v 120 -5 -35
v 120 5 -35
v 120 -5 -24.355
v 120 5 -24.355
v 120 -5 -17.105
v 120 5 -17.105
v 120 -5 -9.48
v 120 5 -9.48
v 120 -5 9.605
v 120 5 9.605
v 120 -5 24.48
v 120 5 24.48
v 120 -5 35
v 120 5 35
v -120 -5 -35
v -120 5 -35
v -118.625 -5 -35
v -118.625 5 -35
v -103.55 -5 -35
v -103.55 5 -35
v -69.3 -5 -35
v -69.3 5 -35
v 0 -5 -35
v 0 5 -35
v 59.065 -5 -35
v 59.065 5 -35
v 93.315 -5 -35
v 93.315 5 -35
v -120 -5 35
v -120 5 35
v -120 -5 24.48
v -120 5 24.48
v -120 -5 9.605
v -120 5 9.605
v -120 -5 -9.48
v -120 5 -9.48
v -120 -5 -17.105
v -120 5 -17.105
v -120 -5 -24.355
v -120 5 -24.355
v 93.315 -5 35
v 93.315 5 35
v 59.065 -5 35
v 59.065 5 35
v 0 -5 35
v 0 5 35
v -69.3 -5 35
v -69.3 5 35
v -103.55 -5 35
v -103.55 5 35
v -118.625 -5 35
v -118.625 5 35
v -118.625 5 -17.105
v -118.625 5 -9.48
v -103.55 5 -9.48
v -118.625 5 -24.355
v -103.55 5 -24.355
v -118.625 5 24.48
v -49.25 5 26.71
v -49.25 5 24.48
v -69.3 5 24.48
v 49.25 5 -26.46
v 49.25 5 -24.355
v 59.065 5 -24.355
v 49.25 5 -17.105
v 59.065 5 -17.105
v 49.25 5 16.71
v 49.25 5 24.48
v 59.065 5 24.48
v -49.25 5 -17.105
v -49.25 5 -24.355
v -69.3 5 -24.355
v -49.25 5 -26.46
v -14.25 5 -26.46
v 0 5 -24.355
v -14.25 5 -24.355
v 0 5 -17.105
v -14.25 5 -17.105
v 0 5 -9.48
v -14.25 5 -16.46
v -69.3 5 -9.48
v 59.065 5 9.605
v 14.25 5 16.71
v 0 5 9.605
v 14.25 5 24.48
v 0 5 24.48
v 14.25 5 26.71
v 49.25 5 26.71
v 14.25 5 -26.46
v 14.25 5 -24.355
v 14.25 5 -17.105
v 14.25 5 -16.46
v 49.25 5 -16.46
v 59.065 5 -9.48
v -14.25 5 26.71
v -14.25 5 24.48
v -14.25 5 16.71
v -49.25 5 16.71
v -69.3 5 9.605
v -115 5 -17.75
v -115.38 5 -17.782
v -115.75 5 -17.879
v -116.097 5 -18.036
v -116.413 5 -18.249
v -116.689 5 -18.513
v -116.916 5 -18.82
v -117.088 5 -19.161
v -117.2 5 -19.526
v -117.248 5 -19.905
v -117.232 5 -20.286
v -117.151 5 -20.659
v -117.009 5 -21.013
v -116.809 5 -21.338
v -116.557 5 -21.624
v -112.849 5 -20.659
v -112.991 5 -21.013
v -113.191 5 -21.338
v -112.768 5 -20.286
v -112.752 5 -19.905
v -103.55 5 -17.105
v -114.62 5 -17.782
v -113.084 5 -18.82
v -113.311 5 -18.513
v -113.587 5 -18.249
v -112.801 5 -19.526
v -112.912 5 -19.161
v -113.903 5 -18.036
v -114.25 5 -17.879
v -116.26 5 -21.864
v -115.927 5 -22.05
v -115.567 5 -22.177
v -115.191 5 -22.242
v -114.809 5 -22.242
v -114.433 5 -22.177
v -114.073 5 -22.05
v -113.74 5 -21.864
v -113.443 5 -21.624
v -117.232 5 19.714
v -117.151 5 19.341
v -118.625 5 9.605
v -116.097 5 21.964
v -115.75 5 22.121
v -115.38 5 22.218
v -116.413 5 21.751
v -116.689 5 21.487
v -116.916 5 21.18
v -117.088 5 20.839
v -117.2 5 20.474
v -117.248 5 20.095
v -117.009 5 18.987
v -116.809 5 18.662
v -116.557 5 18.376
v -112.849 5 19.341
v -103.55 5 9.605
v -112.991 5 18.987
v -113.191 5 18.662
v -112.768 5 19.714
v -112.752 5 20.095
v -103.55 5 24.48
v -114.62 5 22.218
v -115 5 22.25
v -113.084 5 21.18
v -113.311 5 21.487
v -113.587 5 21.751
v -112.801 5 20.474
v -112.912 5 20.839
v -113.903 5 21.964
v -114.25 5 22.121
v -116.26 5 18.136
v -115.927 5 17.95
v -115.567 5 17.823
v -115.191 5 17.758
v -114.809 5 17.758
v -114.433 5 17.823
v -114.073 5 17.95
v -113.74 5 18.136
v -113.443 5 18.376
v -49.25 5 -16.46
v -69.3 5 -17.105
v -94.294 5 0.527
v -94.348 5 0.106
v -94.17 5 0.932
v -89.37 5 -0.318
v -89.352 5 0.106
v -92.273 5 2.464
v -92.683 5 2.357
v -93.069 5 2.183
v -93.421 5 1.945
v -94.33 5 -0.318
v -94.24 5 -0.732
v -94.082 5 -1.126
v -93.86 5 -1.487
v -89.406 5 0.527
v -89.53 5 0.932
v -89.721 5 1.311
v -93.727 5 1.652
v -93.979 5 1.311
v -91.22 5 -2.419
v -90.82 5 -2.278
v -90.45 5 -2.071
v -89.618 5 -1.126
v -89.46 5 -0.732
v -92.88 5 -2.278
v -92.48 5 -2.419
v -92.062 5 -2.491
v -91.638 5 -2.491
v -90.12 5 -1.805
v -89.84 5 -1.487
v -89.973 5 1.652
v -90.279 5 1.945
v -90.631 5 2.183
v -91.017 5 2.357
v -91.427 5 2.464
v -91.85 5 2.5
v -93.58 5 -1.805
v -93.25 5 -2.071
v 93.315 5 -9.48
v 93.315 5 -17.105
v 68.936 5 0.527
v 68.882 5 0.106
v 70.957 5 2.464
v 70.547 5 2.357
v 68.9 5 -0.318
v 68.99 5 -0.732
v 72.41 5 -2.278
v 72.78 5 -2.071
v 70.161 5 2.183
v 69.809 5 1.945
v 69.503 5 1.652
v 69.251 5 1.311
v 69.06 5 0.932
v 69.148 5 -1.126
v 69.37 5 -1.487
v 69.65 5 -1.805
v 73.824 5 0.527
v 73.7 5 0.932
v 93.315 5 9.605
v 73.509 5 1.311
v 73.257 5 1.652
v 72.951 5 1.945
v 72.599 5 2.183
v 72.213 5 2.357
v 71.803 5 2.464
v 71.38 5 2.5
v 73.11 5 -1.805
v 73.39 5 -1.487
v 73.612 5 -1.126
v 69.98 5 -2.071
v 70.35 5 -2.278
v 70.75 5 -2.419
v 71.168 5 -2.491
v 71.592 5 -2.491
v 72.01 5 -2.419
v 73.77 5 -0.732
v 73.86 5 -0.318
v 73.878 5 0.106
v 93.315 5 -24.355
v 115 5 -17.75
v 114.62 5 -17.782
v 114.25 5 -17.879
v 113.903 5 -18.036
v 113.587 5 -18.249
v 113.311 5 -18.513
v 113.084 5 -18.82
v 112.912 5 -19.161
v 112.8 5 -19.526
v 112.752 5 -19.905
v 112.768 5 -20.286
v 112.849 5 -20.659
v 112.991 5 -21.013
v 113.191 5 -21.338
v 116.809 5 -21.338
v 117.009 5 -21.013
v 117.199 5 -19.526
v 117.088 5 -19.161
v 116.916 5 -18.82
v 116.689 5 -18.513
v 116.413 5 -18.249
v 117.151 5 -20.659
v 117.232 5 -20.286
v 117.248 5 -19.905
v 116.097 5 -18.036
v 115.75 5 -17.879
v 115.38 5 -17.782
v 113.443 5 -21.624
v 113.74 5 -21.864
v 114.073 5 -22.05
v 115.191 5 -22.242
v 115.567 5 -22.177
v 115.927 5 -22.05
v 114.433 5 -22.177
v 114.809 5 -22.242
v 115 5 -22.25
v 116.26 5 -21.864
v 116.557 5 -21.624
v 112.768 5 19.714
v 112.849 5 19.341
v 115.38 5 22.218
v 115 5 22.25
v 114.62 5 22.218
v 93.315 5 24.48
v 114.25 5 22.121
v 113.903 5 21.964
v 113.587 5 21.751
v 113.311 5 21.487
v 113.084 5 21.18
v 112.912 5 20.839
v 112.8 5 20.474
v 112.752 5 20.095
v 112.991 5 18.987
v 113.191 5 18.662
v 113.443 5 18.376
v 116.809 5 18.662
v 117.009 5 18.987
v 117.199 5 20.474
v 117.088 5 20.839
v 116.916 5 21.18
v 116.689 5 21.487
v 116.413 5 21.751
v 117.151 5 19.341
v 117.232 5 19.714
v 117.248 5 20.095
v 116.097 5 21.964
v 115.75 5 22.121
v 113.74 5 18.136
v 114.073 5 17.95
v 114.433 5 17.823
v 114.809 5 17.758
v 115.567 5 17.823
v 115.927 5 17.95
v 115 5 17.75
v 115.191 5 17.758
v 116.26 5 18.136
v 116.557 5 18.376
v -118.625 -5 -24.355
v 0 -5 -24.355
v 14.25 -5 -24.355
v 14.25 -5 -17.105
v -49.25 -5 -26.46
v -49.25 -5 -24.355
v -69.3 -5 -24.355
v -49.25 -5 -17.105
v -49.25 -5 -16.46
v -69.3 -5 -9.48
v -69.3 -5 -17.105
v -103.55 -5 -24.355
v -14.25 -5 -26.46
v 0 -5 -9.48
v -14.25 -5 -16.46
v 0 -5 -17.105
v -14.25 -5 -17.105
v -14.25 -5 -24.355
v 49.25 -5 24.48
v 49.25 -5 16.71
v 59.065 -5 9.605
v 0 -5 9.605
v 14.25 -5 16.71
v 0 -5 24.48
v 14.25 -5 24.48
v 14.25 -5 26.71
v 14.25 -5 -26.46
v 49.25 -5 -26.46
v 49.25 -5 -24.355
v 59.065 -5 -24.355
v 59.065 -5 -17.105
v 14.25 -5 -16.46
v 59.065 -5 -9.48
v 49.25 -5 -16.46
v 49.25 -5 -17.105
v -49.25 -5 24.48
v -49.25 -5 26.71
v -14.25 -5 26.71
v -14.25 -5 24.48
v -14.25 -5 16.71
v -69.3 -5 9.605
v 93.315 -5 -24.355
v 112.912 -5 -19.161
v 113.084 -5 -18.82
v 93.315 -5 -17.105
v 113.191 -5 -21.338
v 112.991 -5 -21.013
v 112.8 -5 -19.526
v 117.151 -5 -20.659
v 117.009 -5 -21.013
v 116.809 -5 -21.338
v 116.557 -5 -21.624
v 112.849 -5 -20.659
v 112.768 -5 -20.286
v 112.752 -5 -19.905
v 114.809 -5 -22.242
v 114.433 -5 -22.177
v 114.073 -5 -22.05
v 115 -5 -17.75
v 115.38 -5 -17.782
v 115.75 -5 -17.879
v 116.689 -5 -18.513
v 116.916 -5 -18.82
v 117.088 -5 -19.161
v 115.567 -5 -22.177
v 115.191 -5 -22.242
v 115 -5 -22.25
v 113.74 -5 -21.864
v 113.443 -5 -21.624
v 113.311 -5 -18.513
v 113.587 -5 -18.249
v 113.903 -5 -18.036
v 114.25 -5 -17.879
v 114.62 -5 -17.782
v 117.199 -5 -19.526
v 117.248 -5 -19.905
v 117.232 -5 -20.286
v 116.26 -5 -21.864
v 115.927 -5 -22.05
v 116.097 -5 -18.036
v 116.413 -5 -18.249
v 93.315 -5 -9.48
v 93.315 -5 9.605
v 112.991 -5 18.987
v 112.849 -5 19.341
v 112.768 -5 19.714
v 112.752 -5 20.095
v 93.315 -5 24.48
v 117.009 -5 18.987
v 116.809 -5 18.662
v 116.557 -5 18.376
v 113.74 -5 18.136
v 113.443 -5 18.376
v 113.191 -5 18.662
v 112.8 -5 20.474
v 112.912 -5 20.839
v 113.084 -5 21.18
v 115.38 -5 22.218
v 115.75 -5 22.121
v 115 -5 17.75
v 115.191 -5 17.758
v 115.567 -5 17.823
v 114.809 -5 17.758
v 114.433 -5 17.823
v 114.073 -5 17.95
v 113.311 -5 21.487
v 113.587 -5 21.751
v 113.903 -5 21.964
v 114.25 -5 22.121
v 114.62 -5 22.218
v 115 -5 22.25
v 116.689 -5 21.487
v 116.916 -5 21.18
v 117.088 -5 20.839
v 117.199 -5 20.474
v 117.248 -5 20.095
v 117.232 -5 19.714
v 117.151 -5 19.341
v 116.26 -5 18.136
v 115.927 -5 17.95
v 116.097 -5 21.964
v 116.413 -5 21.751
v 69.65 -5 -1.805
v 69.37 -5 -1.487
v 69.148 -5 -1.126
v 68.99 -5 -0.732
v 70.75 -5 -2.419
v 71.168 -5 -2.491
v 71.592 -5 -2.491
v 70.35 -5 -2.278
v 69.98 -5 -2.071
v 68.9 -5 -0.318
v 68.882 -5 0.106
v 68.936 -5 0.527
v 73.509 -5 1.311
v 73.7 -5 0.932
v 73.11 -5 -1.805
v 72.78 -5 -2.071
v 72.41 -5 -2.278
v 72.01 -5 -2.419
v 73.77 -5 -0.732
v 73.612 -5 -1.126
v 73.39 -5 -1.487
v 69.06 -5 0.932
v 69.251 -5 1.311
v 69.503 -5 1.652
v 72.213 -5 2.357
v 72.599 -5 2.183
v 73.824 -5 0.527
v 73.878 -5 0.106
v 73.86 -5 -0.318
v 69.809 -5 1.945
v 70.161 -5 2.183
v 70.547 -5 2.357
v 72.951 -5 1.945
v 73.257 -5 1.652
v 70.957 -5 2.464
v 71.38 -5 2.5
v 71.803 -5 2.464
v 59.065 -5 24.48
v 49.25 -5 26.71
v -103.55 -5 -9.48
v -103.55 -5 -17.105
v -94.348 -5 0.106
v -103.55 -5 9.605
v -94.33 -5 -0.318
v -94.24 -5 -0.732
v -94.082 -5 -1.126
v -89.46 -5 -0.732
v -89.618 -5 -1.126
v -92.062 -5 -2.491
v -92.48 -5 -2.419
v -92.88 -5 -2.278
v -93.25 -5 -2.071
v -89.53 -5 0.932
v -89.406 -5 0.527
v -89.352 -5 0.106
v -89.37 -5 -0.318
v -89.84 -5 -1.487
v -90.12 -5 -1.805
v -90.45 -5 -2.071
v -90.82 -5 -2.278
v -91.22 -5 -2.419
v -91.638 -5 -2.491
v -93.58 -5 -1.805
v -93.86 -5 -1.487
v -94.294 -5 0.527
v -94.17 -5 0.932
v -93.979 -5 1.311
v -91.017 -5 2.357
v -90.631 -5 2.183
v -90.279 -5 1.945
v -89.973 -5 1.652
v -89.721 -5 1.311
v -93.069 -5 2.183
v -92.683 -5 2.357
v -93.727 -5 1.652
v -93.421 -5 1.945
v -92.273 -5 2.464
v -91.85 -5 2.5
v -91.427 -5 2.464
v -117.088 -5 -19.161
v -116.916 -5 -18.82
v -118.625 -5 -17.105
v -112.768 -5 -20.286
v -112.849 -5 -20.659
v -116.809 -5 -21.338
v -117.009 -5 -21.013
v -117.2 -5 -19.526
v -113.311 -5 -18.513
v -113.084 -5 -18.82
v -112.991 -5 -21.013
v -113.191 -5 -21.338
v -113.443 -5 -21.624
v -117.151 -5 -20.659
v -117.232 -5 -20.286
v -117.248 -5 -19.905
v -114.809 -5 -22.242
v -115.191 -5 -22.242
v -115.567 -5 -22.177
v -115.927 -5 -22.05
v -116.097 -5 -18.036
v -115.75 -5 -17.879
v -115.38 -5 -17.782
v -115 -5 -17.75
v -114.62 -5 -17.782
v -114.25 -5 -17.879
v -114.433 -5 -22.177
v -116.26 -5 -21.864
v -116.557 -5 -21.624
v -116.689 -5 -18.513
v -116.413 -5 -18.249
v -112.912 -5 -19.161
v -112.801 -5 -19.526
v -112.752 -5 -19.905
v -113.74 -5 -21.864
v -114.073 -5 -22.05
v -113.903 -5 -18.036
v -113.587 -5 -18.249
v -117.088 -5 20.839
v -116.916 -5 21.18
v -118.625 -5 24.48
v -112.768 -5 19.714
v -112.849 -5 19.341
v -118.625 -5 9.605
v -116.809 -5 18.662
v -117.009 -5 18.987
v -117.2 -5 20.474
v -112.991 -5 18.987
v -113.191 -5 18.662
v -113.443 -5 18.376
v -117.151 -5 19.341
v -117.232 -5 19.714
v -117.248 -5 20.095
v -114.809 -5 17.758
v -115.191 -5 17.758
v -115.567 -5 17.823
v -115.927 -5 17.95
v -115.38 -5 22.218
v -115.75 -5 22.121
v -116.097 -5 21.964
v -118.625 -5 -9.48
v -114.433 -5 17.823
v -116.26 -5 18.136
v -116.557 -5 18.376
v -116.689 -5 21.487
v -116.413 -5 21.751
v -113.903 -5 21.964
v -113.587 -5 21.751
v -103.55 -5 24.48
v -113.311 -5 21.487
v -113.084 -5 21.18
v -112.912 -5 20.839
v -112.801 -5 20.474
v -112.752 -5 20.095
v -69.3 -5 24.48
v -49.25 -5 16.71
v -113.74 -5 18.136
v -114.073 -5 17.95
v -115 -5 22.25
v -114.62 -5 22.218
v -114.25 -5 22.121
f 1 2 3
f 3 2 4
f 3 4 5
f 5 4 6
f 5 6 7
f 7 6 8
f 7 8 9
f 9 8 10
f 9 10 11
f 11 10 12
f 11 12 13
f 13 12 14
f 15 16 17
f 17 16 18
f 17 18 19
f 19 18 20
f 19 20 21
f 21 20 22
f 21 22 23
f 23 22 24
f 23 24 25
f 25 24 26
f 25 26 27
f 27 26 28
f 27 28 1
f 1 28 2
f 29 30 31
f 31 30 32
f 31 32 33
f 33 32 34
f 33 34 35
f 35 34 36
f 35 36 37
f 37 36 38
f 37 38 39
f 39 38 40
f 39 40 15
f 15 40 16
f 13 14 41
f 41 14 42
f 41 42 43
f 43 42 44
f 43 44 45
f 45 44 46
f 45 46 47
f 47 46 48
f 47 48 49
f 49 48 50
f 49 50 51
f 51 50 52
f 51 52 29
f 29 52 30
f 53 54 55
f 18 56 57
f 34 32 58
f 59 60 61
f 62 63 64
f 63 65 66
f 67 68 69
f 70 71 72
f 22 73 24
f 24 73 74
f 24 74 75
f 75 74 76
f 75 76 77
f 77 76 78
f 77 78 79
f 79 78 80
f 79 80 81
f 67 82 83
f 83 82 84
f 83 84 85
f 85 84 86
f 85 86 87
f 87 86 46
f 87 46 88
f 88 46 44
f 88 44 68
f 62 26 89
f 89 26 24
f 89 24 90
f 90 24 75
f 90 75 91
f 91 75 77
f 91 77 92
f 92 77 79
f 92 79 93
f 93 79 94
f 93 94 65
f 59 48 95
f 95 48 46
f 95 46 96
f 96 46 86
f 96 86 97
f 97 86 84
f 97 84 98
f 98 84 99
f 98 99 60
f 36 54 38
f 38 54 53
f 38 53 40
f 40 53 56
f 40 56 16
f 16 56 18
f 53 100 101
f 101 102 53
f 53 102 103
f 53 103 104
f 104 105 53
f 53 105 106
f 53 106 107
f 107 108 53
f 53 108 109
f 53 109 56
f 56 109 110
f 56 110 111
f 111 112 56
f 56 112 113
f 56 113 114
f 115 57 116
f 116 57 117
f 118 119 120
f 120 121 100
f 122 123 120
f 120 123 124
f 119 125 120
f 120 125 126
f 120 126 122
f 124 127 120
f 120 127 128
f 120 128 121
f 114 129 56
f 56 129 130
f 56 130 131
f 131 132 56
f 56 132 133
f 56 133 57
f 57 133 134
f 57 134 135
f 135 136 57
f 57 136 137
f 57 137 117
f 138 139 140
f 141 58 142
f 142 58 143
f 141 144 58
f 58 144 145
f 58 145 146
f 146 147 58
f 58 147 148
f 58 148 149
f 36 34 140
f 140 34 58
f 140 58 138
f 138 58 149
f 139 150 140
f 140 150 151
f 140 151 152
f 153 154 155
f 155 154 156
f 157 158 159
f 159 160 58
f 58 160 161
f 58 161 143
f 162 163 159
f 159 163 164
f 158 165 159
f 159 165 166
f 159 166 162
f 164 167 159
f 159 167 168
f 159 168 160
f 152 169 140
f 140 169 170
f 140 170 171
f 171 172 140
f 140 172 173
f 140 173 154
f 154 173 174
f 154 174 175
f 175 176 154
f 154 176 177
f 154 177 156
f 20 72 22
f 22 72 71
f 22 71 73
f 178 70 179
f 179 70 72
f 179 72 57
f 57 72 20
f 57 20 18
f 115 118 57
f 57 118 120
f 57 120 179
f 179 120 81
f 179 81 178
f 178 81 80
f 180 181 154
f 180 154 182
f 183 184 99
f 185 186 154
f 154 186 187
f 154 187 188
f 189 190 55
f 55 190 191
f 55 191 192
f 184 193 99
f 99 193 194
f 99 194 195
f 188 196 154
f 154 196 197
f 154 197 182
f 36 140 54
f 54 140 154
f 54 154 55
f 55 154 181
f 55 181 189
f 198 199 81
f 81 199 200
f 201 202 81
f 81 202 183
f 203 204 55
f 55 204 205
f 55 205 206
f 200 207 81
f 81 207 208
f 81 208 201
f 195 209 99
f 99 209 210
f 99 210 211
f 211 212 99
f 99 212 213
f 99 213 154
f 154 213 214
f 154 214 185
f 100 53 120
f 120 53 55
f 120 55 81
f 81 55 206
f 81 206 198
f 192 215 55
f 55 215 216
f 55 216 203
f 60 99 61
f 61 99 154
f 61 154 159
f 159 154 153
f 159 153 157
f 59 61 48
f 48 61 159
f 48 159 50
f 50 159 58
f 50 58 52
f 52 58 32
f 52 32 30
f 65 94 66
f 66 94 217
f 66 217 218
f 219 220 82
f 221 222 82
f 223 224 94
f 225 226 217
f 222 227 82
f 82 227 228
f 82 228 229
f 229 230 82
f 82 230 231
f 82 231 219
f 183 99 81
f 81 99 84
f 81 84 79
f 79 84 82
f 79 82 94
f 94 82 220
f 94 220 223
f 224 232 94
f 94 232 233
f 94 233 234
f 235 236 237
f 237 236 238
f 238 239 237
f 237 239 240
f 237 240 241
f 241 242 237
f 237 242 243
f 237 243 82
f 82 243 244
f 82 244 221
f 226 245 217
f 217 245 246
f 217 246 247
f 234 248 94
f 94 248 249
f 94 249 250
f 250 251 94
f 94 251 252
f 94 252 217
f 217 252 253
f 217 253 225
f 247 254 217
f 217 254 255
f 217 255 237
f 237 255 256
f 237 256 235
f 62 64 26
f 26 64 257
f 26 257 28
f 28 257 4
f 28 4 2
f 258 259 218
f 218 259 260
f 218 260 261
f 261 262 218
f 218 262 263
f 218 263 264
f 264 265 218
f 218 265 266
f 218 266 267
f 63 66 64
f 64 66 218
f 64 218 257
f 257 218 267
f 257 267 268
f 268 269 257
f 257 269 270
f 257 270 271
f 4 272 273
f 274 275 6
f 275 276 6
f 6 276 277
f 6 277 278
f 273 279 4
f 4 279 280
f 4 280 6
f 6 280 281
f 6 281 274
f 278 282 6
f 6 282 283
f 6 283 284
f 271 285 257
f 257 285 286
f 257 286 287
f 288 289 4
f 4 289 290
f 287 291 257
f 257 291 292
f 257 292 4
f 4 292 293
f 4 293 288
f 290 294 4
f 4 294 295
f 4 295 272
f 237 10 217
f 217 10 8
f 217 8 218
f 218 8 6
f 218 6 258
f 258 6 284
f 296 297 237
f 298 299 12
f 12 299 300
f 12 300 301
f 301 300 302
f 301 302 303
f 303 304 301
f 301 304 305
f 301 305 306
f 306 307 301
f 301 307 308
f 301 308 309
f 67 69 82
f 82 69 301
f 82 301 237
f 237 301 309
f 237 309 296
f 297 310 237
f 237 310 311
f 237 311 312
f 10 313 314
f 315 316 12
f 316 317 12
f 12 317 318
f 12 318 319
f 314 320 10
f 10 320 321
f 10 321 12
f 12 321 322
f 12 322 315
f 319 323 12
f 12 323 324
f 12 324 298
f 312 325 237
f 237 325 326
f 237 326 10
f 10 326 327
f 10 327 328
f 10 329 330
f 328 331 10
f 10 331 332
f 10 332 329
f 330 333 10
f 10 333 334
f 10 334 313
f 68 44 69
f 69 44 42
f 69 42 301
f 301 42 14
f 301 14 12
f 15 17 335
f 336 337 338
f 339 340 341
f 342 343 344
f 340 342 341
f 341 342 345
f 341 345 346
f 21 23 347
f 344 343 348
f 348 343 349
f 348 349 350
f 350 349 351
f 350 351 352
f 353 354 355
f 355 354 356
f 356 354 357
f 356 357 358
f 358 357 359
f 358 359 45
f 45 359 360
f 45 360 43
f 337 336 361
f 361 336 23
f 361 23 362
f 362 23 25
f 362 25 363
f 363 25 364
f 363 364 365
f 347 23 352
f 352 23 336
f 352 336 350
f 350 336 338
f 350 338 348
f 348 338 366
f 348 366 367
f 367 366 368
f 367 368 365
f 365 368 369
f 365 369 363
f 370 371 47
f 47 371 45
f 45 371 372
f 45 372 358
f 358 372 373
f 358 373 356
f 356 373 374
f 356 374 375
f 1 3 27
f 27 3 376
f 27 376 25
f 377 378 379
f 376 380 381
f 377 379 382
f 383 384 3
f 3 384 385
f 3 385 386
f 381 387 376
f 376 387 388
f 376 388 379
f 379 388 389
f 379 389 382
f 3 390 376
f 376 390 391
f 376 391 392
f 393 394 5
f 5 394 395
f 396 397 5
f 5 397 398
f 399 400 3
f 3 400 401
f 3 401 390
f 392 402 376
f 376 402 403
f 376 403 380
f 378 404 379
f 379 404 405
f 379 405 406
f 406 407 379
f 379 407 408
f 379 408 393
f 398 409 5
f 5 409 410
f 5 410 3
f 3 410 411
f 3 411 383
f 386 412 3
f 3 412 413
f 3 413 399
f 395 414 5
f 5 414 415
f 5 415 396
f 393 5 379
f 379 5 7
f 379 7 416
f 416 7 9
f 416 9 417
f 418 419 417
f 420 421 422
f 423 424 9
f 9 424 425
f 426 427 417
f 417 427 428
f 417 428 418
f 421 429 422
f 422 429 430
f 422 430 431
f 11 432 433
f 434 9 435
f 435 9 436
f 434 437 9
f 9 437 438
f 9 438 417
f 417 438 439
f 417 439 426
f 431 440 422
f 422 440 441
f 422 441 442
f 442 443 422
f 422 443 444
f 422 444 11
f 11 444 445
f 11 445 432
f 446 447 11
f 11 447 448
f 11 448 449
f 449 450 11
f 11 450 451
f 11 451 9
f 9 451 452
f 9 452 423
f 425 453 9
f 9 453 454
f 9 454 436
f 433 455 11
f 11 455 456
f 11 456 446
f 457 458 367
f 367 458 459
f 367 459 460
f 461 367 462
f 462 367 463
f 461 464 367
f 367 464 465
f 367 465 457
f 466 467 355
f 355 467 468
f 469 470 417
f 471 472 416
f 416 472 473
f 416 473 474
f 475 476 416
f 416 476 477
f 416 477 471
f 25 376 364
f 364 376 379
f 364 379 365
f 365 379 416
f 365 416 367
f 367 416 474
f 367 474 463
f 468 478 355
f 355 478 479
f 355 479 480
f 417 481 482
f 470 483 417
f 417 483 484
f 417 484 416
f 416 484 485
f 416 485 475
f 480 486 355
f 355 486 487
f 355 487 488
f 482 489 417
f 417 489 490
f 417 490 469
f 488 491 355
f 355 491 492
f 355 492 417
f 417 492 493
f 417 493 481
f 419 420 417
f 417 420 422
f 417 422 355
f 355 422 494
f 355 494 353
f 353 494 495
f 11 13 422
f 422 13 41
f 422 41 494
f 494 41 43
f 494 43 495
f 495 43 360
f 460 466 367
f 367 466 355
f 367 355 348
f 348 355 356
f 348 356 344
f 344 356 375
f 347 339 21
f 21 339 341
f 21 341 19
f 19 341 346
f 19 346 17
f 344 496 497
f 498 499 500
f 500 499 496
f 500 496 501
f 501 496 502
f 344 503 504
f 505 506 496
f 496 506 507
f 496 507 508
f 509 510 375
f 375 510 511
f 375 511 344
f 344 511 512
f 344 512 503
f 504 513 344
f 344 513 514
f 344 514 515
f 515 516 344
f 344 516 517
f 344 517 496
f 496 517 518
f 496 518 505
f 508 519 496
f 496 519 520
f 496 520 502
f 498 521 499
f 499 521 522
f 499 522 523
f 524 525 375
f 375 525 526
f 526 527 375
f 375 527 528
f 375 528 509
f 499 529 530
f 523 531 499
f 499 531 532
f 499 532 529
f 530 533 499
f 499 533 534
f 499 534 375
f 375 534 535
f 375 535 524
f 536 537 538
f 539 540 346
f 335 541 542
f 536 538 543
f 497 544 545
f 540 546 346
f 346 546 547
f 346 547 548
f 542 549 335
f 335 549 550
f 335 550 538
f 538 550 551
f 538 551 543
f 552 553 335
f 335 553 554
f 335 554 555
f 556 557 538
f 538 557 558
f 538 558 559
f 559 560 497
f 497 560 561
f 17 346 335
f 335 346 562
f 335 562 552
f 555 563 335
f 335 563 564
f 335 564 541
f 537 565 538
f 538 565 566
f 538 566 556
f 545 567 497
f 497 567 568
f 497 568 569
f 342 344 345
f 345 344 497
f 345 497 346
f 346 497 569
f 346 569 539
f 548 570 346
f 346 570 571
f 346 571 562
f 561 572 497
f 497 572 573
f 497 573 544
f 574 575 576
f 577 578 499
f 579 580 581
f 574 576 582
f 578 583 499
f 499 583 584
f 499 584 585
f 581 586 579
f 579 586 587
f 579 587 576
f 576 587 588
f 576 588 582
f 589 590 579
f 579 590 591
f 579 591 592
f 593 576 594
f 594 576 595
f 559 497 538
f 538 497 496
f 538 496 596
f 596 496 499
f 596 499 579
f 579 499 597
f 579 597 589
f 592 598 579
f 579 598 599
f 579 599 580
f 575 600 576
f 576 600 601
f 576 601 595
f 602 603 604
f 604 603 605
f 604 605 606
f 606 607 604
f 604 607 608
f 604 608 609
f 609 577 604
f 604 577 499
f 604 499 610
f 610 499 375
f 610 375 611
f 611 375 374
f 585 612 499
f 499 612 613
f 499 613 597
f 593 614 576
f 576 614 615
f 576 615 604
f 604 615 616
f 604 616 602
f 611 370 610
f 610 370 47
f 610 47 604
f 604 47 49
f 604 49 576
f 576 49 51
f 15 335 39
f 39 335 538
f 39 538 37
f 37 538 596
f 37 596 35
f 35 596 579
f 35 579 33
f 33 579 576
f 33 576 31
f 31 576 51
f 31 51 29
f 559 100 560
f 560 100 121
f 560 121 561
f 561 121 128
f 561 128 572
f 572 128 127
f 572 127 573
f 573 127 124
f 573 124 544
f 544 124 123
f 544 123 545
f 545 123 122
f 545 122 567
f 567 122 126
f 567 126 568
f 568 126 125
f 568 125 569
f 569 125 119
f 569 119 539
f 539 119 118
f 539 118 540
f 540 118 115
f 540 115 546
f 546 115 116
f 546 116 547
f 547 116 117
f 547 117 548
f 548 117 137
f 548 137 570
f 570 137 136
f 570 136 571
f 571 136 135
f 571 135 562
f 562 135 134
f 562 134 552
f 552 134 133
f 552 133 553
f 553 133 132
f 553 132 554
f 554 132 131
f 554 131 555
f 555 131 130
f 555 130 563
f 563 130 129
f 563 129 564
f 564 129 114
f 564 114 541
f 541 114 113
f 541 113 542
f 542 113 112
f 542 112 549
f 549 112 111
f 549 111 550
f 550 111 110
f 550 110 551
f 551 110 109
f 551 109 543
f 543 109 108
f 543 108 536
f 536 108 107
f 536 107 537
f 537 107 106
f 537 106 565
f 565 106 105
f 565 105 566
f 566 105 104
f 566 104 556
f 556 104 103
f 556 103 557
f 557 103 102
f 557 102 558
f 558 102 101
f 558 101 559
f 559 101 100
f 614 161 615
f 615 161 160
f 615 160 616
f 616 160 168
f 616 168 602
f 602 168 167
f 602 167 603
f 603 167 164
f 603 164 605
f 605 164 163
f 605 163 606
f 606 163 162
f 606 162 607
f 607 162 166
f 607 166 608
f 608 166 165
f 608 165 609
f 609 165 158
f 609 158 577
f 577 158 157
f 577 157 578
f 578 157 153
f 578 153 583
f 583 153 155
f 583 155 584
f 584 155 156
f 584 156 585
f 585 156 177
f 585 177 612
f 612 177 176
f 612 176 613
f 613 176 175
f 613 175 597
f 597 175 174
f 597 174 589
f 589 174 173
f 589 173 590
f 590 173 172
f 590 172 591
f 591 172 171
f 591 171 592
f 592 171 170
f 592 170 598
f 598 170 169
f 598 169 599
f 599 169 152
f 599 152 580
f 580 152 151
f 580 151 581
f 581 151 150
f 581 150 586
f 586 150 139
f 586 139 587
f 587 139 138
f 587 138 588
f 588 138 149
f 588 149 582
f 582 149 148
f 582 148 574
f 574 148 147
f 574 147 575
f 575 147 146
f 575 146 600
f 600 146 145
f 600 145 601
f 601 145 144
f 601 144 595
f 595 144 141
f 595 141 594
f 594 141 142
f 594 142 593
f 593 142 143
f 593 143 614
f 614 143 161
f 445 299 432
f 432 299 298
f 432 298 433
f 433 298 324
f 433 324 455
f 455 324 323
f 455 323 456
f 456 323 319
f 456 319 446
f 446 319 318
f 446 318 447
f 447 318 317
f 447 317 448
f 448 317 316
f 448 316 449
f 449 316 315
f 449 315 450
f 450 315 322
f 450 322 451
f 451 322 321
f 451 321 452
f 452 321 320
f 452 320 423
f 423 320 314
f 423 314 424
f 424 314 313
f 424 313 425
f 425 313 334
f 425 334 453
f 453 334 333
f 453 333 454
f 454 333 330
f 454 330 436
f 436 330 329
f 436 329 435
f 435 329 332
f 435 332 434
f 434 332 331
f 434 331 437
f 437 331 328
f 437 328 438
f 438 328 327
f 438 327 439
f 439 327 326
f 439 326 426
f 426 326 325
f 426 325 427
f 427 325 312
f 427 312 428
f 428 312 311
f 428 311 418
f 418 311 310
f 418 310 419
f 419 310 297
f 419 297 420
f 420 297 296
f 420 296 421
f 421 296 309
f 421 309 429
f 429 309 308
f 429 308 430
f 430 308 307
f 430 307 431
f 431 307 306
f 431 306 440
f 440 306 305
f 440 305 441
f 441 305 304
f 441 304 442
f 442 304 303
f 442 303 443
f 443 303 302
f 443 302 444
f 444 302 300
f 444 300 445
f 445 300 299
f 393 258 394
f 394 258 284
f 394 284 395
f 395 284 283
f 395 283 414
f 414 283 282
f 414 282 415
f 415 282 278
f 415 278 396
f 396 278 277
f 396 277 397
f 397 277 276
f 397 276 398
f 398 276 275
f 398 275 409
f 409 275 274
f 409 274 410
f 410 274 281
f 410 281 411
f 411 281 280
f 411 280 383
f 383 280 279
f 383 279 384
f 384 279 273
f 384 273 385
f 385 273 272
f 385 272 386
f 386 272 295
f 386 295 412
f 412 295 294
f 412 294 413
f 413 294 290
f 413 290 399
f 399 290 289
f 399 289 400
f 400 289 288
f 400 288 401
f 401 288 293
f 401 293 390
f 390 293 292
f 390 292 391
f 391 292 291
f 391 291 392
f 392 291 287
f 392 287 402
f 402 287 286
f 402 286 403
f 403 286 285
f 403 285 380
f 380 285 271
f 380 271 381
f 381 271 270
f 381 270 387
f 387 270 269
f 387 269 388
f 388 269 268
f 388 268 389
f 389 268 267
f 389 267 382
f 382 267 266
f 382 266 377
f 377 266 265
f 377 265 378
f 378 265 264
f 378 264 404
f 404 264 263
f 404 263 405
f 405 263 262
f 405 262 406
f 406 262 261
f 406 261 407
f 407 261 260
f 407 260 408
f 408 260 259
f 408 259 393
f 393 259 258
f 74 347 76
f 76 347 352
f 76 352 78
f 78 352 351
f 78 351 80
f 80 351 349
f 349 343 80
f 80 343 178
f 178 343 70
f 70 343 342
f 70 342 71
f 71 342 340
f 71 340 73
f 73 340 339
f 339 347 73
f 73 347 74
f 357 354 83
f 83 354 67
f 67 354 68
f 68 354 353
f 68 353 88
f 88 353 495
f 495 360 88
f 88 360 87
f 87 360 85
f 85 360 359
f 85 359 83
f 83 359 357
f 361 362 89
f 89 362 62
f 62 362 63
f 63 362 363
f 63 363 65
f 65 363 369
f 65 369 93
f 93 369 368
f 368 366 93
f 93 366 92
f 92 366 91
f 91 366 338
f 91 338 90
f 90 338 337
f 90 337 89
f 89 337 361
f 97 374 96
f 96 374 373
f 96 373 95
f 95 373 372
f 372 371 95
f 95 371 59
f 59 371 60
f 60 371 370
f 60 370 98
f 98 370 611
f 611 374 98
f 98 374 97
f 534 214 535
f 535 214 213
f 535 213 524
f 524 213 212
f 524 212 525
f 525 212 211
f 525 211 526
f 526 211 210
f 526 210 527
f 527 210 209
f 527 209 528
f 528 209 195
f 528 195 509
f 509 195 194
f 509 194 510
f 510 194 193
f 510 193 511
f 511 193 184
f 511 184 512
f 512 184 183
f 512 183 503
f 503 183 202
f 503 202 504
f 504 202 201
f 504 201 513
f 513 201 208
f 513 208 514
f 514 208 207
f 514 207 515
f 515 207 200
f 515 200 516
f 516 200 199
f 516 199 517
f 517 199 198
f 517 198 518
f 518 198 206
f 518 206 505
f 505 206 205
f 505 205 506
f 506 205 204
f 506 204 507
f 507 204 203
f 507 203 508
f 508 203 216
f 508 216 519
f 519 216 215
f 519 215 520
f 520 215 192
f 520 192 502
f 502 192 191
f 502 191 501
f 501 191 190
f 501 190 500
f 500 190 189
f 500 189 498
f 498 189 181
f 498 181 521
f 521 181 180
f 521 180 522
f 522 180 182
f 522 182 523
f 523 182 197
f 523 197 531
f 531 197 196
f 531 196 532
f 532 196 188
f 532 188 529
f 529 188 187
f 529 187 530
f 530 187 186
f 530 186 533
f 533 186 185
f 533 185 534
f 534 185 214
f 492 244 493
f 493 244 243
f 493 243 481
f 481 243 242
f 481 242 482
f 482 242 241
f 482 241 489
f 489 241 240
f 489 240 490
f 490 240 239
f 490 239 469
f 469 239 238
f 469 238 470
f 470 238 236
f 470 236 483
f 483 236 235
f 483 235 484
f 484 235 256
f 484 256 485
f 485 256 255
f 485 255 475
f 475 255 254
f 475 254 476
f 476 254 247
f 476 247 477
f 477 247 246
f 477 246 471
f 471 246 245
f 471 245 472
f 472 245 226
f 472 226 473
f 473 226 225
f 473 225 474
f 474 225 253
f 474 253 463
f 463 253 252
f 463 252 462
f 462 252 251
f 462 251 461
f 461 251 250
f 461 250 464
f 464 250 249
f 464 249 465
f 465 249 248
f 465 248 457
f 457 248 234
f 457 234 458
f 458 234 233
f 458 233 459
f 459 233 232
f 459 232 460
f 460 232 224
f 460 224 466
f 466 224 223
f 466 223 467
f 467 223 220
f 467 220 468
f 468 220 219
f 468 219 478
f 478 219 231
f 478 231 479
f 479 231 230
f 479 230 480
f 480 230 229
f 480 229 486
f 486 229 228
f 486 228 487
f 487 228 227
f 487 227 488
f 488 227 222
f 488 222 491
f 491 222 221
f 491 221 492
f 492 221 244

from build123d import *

# Parameters (mm, degrees)
CROQUIS1_W              = 240
CROQUIS1_H              = 70
SALIENTE_EXTRUIR1_DEPTH = 5
CROQUIS2_R              = 2.25
CORTAR_EXTRUIR1_DEPTH   = 126.39936204
CROQUIS5_W              = 35
CROQUIS5_H              = 10
CORTAR_EXTRUIR4_DEPTH   = 126.39936204
CROQUIS6_R              = 2.5
CORTAR_EXTRUIR5_DEPTH   = 126.39936204


with BuildPart() as part:
    # Croquis1 → Saliente-Extruir1 (new, symmetric)
    with BuildSketch(Plane(origin=(0, 0, 0), x_dir=(1, 0, 0), z_dir=(0, 1, 0))):
        Rectangle(CROQUIS1_W, CROQUIS1_H)
    extrude(amount=SALIENTE_EXTRUIR1_DEPTH, both=True)

    # Croquis2 → Cortar-Extruir1 (cut, through all)
    with BuildSketch(Plane(origin=(0, 5, 0), x_dir=(1, 0, 0), z_dir=(0, 1, 0))):
        with Locations(Location((-115, 20, 0), (0, 0, 270))):
            Circle(CROQUIS2_R)
        with Locations(Location((-115, -20, 0), (0, 0, 270))):
            Circle(CROQUIS2_R)
        with Locations(Location((115, -20, 0), (0, 0, 90))):
            Circle(CROQUIS2_R)
        with Locations(Location((115, 20, 0), (0, 0, 90))):
            Circle(CROQUIS2_R)
    extrude(amount=-CORTAR_EXTRUIR1_DEPTH, mode=Mode.SUBTRACT)

    # Croquis5 → Cortar-Extruir4 (cut, through all)
    with BuildSketch(Plane(origin=(0, 5, 0), x_dir=(1, 0, 0), z_dir=(0, 1, 0))):
        with Locations((-31.75, 21.46)):
            Rectangle(CROQUIS5_W, CROQUIS5_H)
        with Locations((-31.75, -21.71)):
            Rectangle(CROQUIS5_W, CROQUIS5_H)
        with Locations((31.75, 21.46)):
            Rectangle(CROQUIS5_W, CROQUIS5_H)
        with Locations((31.75, -21.71)):
            Rectangle(CROQUIS5_W, CROQUIS5_H)
    extrude(amount=-CORTAR_EXTRUIR4_DEPTH, mode=Mode.SUBTRACT)

    # Croquis6 → Cortar-Extruir5 (cut, through all)
    with BuildSketch(Plane(origin=(0, 5, 0), x_dir=(1, 0, 0), z_dir=(0, 1, 0))):
        with Locations(Location((71.38, 0, 0), (0, 0, 270))):
            Circle(CROQUIS6_R)
        with Locations(Location((-91.85, 0, 0), (0, 0, 270))):
            Circle(CROQUIS6_R)
    extrude(amount=-CORTAR_EXTRUIR5_DEPTH, mode=Mode.SUBTRACT)


solid = part.part
